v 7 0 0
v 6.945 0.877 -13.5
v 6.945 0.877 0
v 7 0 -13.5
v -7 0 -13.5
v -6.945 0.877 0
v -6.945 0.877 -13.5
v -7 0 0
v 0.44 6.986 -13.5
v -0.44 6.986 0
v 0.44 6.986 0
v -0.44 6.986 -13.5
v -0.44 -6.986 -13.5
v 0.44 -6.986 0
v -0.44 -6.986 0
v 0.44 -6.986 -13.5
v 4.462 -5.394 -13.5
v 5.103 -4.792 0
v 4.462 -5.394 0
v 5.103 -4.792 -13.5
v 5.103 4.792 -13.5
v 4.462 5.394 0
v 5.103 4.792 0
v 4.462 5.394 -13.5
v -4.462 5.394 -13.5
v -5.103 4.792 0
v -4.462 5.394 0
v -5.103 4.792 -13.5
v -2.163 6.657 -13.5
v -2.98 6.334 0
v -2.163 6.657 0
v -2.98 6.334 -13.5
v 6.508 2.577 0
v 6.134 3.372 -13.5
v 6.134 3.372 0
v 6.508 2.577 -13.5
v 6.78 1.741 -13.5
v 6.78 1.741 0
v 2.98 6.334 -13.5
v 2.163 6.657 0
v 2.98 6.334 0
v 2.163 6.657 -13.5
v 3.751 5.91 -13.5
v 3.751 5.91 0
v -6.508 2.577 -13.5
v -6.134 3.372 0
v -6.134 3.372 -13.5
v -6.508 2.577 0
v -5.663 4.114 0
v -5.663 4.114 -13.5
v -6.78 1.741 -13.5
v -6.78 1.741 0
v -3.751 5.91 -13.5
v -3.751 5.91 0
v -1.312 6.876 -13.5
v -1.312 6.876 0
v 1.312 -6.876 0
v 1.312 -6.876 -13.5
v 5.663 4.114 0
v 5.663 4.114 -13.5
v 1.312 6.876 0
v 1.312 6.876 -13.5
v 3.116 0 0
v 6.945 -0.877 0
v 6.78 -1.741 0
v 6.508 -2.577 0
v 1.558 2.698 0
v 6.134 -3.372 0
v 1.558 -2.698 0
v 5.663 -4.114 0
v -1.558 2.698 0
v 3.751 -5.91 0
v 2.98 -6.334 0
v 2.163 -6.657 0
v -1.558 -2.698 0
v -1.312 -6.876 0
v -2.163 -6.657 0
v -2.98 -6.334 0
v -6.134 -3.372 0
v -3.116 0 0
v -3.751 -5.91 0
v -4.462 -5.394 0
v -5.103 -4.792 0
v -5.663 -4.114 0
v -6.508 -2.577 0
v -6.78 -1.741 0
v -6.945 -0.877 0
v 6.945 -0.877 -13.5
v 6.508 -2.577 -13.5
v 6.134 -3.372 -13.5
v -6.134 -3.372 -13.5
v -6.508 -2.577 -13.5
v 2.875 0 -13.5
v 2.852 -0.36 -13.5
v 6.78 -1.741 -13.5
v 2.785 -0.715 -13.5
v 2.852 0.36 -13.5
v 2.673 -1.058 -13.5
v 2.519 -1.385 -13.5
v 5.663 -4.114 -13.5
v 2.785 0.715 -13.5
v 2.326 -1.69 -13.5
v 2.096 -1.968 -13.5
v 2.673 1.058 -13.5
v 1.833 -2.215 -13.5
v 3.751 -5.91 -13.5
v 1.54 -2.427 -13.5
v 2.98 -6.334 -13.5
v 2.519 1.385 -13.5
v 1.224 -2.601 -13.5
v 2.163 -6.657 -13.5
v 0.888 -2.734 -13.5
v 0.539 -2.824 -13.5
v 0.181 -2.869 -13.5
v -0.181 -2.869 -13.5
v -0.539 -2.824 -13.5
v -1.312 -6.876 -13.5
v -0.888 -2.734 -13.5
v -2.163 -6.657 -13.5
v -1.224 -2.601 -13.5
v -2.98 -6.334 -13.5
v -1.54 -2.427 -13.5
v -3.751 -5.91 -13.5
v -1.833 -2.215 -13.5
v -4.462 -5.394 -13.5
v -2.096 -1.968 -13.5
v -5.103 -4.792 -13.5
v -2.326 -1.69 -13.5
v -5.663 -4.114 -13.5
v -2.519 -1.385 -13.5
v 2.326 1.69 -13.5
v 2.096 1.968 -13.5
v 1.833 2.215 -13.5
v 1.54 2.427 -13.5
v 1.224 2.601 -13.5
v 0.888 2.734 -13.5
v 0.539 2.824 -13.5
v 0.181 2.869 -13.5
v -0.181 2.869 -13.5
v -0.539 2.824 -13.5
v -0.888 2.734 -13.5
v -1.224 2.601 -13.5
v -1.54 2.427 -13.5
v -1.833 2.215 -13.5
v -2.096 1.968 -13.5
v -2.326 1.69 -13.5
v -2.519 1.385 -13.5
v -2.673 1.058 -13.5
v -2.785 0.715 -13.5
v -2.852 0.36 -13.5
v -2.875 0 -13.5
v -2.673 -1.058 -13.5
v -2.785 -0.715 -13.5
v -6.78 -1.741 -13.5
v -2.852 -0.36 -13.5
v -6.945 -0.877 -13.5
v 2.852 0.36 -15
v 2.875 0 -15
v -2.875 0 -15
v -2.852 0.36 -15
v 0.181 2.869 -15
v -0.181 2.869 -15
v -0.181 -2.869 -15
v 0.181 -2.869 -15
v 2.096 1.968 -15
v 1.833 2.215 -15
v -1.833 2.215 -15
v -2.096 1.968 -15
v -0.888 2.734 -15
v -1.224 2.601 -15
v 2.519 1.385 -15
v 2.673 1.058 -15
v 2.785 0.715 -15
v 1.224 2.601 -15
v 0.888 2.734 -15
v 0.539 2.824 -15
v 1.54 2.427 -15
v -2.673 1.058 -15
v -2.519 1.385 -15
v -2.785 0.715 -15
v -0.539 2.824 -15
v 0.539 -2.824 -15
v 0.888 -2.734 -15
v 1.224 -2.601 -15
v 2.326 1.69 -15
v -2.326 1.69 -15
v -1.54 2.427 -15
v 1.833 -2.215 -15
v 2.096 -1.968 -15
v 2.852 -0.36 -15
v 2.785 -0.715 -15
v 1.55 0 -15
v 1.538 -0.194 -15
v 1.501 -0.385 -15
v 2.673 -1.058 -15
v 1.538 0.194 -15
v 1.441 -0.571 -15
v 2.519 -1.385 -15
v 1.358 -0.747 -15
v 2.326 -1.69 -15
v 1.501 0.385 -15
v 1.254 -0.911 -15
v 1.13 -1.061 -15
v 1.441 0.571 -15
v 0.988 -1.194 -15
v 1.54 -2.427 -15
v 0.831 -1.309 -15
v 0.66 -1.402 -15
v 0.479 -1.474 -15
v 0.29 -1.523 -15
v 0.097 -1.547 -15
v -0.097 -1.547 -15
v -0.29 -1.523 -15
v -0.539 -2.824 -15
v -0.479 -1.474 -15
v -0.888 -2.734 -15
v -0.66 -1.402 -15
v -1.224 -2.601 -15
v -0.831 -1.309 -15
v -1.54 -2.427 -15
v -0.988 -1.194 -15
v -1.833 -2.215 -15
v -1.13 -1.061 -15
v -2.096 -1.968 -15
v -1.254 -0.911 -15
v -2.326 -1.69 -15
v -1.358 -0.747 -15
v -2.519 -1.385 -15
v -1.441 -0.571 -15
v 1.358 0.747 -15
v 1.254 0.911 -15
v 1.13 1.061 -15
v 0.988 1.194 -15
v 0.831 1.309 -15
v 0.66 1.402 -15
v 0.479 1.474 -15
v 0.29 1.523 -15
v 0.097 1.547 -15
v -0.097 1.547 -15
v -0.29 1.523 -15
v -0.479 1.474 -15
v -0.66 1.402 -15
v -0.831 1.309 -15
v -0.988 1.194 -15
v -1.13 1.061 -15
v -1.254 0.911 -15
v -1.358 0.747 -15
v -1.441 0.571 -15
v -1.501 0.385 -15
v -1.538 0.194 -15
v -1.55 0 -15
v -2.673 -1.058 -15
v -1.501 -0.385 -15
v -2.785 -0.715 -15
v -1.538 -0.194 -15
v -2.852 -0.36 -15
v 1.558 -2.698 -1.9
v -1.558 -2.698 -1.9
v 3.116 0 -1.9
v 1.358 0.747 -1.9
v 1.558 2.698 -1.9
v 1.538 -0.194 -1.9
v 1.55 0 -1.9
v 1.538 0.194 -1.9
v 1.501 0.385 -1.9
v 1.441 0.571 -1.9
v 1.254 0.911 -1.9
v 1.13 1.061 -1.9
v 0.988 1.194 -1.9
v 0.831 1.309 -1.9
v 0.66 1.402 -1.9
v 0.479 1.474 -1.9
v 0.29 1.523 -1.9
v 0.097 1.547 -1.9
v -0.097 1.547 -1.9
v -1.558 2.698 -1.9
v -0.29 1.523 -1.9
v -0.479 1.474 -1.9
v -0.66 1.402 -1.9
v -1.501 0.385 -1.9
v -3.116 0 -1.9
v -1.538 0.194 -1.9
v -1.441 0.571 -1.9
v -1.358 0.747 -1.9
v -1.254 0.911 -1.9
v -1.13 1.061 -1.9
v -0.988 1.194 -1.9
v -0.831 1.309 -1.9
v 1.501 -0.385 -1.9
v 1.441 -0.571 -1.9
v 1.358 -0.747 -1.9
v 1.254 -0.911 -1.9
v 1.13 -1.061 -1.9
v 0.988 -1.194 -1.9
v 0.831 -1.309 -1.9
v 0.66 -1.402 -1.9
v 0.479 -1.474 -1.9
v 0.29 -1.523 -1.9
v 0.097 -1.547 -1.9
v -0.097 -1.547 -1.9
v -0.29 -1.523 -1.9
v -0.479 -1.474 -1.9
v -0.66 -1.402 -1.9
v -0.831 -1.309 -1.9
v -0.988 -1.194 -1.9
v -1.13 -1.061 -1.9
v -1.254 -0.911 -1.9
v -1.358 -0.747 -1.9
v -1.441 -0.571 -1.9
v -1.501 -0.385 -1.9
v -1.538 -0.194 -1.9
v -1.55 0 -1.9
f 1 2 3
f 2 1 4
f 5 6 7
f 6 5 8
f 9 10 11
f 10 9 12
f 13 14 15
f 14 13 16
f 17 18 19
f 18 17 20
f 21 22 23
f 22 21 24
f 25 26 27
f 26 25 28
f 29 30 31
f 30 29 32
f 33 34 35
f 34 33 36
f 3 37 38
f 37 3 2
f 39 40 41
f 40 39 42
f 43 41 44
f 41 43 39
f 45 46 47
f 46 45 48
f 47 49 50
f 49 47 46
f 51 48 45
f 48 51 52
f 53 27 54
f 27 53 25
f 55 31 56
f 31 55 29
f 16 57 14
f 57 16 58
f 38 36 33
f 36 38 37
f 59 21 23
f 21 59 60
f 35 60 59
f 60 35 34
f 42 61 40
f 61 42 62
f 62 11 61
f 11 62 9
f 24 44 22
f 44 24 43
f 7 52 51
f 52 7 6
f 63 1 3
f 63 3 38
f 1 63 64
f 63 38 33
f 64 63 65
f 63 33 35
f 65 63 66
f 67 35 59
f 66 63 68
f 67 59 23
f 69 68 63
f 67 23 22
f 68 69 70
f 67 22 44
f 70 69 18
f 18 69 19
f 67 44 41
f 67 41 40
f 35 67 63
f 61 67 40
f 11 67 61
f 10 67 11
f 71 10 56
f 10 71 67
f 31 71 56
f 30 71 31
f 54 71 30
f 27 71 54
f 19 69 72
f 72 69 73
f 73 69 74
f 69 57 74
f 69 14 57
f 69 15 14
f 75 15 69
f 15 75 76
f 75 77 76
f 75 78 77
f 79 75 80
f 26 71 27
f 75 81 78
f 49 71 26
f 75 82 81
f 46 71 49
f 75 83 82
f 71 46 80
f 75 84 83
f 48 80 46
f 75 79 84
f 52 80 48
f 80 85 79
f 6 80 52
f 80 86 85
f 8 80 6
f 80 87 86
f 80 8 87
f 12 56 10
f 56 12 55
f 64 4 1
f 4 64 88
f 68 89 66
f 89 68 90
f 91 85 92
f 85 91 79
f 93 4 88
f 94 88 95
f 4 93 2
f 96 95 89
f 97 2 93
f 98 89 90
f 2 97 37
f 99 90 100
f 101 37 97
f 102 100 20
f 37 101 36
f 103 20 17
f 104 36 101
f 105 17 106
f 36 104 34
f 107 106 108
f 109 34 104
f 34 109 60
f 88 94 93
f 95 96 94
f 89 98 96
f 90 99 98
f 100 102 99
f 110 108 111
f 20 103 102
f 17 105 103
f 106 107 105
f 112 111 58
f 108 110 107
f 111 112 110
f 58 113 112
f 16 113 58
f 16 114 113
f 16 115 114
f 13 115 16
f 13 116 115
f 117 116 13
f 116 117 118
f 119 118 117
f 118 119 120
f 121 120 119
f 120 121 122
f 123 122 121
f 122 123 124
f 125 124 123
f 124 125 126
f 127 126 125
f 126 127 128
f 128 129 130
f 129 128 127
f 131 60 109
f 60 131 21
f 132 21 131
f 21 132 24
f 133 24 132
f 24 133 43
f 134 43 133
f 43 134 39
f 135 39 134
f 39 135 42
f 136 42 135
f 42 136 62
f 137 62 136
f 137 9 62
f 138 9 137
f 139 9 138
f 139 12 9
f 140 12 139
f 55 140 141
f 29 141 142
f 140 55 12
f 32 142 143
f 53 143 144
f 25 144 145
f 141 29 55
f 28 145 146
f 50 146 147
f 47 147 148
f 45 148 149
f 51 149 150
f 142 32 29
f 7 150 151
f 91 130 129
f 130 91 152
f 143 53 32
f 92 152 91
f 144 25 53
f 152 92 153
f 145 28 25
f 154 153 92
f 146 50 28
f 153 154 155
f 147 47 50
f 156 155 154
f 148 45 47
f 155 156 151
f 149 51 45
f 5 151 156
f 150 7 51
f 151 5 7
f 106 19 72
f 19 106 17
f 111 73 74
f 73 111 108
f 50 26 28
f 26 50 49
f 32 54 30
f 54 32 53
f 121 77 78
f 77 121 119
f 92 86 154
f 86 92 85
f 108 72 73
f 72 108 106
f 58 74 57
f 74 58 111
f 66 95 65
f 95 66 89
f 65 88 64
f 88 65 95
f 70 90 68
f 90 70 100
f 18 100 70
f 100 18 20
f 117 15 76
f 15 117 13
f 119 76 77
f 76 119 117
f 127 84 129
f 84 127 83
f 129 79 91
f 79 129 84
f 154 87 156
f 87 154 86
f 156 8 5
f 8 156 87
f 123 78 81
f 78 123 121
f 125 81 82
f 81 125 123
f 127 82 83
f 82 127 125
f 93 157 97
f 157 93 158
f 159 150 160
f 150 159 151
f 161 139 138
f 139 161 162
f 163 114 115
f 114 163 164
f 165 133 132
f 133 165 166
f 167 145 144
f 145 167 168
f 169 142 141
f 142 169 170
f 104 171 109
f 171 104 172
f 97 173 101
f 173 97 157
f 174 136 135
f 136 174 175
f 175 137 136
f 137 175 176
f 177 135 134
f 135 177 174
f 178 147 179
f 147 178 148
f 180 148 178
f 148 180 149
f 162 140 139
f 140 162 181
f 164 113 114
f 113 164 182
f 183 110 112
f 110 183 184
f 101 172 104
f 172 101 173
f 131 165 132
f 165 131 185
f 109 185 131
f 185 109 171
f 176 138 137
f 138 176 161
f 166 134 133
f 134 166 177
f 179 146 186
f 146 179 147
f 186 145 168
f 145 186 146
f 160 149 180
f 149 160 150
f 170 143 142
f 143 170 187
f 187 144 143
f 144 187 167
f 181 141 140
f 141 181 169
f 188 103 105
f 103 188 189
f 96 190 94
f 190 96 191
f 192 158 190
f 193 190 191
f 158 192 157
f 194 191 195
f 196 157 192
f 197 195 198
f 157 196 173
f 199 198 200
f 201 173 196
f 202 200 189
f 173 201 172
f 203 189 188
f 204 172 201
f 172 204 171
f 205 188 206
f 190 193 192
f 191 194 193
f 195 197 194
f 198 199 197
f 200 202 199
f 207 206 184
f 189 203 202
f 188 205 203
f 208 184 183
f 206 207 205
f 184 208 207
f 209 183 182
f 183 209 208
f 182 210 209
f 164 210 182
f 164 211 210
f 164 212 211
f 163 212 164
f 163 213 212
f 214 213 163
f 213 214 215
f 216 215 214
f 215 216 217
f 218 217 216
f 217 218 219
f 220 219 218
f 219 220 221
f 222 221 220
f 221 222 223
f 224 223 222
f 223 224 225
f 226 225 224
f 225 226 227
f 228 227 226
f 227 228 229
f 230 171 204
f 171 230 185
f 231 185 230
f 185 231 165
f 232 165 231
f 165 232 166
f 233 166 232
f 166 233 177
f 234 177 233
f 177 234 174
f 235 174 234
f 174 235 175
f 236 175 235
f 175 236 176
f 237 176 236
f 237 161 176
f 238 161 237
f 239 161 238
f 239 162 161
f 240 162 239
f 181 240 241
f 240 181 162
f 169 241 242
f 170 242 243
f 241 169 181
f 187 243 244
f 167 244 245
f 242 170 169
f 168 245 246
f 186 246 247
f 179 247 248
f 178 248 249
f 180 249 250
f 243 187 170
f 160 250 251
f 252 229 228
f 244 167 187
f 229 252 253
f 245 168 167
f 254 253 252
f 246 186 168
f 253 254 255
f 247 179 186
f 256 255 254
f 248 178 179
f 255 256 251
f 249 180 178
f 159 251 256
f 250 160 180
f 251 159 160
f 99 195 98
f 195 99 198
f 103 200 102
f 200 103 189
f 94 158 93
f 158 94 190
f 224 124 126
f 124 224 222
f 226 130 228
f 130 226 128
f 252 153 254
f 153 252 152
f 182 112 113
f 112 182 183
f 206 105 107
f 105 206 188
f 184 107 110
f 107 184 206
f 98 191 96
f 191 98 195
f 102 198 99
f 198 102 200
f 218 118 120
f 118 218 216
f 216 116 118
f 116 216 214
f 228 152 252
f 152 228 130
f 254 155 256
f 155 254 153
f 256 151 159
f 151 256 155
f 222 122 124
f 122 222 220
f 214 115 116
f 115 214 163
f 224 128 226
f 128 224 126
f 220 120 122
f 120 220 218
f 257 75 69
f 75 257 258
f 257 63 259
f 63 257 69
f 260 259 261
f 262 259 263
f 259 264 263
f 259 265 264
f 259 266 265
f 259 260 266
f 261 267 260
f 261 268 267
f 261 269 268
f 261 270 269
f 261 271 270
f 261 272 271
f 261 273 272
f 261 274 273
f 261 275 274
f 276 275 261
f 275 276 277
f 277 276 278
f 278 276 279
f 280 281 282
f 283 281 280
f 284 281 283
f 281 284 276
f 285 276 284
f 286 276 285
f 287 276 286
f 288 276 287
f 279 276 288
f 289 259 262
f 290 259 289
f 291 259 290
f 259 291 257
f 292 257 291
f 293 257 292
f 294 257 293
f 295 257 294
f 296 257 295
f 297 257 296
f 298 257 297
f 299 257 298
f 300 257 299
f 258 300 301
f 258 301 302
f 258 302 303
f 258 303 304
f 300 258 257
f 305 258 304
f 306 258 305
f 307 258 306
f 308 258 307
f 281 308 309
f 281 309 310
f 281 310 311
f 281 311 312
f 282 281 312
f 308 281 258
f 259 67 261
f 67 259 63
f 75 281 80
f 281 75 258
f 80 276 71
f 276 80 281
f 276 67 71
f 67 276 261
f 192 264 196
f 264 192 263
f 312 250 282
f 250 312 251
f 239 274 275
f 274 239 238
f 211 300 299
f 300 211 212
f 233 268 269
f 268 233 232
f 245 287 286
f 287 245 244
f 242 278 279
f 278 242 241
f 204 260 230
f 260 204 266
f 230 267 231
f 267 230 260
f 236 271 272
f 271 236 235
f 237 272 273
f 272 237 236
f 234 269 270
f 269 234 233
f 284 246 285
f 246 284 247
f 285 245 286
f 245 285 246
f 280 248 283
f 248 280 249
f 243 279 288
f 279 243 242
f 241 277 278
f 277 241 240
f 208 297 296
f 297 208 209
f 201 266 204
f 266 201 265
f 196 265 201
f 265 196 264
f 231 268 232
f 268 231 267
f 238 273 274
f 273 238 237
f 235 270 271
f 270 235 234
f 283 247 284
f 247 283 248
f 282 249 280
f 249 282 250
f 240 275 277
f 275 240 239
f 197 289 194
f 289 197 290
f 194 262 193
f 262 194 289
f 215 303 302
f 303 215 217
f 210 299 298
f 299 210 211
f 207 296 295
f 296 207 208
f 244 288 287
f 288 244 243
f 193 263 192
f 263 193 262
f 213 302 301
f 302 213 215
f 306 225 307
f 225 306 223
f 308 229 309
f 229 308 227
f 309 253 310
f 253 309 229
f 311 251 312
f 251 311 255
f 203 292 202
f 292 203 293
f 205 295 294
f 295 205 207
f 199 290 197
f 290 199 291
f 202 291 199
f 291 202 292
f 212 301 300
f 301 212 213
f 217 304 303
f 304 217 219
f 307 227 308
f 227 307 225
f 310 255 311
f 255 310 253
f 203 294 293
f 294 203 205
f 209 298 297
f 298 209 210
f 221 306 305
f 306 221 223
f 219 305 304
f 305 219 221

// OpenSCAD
$fn = 50;


difference() {
	union() {
		translate(v = [0, 0, -13.5000000000]) {
			cylinder(h = 13.5000000000, r = 7.0000000000);
		}
		translate(v = [0, 0, -15.0000000000]) {
			cylinder(h = 15, r = 2.8750000000);
		}
	}
	union() {
		translate(v = [0, 0, 0]) {
			rotate(a = [0, 0, 0]) {
				difference() {
					union() {
						translate(v = [0, 0, -1.9000000000]) {
							linear_extrude(height = 1.9000000000) {
								polygon(points = [[3.1158000000, 0.0000000000], [1.5579000000, 2.6983619531], [-1.5579000000, 2.6983619531], [-3.1158000000, 0.0000000000], [-1.5579000000, -2.6983619531], [1.5579000000, -2.6983619531]]);
							}
						}
					}
					union();
				}
			}
		}
		#translate(v = [0, 0, -100.0000000000]) {
			cylinder(h = 200, r = 1.5500000000);
		}
	}
}
